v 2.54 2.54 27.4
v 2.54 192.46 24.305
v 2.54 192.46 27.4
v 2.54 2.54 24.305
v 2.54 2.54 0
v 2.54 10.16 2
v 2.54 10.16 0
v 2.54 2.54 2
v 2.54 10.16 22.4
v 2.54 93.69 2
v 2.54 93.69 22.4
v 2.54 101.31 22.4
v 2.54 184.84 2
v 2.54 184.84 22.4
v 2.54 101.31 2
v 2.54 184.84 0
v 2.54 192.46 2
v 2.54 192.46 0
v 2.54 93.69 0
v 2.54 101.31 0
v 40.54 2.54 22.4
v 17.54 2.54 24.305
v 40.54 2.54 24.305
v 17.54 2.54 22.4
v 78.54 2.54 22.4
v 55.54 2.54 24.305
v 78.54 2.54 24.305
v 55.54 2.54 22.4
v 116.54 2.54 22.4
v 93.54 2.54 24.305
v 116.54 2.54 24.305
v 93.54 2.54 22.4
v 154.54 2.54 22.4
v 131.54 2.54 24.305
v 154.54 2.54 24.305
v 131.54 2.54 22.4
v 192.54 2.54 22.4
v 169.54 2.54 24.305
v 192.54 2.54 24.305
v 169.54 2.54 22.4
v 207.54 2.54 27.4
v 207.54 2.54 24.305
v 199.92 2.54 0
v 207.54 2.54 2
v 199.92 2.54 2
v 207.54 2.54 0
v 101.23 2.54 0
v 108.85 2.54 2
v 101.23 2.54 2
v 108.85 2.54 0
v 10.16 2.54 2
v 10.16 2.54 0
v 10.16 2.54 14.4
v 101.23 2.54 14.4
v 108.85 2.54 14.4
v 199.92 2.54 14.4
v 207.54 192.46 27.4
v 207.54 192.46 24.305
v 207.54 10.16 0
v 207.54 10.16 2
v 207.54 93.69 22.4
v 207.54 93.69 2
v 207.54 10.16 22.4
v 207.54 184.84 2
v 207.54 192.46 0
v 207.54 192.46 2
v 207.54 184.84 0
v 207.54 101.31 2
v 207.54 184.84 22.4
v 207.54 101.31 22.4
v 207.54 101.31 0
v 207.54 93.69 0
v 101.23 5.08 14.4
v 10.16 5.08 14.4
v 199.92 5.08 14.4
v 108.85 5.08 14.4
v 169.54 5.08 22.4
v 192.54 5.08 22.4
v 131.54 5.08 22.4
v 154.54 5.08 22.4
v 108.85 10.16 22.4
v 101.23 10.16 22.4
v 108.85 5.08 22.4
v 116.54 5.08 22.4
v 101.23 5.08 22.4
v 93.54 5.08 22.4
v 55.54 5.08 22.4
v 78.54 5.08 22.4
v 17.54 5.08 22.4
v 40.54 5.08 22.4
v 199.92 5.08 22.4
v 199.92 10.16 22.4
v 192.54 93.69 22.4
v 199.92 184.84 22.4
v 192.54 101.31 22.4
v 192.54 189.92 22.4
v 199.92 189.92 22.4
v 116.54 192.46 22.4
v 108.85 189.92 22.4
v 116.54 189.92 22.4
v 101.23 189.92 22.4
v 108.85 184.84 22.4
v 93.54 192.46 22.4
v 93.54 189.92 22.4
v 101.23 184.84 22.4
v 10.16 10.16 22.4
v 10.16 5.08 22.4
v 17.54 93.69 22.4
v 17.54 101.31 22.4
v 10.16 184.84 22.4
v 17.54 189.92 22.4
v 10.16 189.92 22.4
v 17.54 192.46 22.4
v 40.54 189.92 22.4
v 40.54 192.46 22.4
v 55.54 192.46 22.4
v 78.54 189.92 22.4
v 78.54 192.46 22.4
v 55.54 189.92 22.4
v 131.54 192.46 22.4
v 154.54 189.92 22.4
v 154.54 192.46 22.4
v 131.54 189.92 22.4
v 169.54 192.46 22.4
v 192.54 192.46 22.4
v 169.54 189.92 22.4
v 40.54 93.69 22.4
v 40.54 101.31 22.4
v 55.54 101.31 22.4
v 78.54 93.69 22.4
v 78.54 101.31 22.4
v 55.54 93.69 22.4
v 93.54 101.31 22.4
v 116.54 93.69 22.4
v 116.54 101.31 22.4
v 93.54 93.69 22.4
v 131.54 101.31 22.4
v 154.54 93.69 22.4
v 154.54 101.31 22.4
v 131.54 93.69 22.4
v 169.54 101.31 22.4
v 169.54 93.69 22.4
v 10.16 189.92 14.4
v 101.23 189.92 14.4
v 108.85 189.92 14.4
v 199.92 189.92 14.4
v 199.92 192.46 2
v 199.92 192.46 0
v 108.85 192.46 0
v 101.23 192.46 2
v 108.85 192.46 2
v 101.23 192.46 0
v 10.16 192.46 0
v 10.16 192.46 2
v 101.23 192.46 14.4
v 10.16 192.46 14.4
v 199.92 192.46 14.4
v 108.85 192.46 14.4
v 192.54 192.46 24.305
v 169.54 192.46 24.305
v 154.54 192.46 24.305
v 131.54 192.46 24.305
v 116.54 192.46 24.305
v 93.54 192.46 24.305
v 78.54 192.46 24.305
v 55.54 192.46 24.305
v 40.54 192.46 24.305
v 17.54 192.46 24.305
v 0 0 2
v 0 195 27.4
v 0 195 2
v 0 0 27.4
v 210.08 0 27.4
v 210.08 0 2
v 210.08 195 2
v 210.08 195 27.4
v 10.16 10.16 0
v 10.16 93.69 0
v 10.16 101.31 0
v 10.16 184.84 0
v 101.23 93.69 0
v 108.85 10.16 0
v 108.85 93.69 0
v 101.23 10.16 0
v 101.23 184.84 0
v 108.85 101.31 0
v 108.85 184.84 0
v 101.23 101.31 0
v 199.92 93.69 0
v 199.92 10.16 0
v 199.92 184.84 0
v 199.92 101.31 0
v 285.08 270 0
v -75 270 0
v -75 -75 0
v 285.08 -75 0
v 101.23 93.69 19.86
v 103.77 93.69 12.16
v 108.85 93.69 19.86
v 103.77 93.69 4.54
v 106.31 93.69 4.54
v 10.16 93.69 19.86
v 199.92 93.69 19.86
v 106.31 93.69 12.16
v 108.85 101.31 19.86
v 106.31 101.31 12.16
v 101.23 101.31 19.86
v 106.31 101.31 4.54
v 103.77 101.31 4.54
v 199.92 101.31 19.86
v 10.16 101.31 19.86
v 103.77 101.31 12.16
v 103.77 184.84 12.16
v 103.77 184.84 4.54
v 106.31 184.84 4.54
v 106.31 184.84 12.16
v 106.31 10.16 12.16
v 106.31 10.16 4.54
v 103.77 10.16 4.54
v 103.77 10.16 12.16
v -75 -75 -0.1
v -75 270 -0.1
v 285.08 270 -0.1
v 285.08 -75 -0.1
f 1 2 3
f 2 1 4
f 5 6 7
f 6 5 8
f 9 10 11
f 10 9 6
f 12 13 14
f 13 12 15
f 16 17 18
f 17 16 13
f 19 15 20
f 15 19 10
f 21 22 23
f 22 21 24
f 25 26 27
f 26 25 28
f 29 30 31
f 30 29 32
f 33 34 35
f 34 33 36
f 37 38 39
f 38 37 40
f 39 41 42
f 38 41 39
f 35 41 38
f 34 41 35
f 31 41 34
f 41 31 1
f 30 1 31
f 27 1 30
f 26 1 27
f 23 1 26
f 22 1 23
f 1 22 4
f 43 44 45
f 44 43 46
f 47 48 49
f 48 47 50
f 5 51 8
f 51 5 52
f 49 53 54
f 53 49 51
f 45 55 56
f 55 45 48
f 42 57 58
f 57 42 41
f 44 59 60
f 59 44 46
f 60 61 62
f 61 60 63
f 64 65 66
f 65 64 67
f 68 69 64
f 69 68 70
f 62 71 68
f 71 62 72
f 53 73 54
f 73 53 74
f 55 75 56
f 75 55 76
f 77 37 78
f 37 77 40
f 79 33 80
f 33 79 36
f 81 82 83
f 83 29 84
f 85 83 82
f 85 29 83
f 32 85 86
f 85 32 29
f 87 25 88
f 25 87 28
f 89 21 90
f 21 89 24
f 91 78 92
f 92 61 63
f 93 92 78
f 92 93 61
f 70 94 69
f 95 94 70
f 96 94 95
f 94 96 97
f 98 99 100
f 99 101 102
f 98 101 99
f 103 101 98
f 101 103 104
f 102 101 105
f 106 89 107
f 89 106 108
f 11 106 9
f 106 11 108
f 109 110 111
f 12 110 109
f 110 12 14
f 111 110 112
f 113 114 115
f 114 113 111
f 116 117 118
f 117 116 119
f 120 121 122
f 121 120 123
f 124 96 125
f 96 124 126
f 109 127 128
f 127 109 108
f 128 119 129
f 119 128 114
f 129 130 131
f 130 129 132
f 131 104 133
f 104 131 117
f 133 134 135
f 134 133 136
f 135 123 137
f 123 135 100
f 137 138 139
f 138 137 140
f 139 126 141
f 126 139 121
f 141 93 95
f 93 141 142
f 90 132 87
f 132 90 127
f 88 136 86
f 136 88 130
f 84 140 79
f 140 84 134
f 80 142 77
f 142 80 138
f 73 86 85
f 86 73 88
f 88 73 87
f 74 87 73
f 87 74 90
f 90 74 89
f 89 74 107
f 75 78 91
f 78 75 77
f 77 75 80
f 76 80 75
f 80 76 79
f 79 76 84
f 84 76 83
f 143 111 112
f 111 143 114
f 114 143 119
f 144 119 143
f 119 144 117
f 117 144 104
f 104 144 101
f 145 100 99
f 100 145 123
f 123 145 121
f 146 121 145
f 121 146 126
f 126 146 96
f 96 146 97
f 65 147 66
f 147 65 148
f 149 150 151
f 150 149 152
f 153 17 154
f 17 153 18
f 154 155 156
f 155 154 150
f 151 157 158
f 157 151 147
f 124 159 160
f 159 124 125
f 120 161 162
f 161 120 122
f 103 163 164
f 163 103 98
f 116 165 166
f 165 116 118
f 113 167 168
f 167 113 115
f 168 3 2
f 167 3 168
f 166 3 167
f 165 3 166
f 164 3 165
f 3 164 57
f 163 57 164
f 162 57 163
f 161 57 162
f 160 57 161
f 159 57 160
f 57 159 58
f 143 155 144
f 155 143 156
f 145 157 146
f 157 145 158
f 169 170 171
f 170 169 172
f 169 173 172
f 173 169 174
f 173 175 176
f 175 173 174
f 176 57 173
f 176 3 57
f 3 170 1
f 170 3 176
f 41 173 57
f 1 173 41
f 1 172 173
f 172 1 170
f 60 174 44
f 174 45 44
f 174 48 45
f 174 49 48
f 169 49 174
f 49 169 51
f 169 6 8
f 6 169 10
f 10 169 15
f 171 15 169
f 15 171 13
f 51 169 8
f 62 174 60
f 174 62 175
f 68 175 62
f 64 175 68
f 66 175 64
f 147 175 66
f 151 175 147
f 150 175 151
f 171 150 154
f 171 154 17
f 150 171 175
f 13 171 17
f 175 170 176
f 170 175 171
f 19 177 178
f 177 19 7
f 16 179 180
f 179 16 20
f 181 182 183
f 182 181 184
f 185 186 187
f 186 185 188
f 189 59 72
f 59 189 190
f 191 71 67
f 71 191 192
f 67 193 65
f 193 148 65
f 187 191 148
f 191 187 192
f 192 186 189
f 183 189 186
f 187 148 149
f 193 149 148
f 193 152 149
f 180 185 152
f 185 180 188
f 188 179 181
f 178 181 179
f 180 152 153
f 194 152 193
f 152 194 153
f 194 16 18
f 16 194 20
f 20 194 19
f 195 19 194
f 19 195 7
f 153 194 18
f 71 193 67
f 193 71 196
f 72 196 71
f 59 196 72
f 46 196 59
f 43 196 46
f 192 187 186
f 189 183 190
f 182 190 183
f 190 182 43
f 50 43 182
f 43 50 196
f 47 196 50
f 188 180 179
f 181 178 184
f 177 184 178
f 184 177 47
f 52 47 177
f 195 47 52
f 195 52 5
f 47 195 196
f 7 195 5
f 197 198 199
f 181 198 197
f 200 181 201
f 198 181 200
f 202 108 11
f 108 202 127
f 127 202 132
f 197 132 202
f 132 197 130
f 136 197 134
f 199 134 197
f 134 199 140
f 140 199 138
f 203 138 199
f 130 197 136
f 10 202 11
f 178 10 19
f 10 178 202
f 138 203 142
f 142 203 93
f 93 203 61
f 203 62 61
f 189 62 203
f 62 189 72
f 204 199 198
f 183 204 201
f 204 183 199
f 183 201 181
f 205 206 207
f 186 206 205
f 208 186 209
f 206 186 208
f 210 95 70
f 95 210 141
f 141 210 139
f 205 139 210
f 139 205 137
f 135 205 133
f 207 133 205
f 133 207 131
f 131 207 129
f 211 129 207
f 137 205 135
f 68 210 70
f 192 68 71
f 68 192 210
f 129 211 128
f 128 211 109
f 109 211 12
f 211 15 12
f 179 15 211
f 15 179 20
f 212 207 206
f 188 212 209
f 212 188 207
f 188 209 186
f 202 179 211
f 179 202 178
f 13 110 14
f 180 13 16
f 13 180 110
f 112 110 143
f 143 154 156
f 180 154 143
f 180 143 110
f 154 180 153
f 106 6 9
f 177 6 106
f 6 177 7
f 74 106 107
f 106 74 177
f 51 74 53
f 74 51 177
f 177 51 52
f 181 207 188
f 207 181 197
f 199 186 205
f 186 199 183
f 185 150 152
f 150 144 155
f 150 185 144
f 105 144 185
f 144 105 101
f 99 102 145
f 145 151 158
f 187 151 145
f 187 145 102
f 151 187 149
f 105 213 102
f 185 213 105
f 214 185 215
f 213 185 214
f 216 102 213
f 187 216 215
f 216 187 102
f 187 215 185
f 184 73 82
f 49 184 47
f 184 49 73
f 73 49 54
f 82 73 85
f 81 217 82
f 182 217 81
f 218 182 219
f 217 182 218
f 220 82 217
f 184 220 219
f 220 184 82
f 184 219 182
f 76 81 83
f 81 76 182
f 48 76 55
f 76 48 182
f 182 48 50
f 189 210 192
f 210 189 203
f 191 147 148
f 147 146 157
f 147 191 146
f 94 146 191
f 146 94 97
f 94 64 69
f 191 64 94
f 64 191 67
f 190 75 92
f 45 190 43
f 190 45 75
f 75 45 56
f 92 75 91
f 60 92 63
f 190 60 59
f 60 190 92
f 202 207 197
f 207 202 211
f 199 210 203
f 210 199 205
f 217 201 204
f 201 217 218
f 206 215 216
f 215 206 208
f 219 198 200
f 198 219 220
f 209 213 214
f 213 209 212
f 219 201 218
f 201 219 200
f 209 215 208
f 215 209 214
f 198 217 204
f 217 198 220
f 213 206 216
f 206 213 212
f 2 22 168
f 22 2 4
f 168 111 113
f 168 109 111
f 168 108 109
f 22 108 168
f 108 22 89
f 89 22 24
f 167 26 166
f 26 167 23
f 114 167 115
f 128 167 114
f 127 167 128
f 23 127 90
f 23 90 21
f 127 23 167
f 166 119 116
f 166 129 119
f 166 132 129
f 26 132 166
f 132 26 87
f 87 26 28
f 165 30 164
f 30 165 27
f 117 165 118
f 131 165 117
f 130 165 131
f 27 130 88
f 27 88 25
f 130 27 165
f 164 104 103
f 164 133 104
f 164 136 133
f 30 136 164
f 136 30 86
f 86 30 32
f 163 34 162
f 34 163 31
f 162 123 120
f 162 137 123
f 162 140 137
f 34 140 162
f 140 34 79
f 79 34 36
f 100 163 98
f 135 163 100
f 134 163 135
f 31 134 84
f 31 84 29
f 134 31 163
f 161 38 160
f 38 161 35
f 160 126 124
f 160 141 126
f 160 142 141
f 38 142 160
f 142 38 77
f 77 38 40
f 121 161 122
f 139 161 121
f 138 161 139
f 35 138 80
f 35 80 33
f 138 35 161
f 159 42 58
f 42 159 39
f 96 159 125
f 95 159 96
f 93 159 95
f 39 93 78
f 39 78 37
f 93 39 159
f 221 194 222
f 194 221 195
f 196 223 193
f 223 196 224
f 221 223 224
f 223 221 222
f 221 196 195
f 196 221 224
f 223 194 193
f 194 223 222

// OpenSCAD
// file: common/board.scad
// board.scad

BOARD_DEFAULT_LENGTH = 600;
BOARD_DEFAULT_WIDTH = 120;
BOARD_DEFAULT_THICKNESS = 120;

function board_get_default_size()
    = [BOARD_DEFAULT_LENGTH, BOARD_DEFAULT_WIDTH, BOARD_DEFAULT_THICKNESS];

module board(size = board_get_default_size(), center = false)
{
    // size[0] is always with the grain
    // size[1] is against the grain
    // size[2] is the board thickness
    cube(size = size, center = center);
}
// main file
// bed_frame.scad
// units: centimeter
// TODO
// - fix multi-line constant style, operator in front
// - joints
// - make parts/files for each module

use <common/board.scad>

// king size mattress is 80 x 76 in
// rounding up a little
MATTRESS_LENGTH = 205;
MATTRESS_WIDTH = 195;

BASE_DEPTH_OFFSET = 5;
GROUND_CLEARANCE_OFFSET = 2;
CROSS_BOARD_LENGTH = 195;
CROSS_SUPPORT_BEAM_OFFSET = GROUND_CLEARANCE_OFFSET + 2.54;

POST_BOARD_WIDTH = 7.62;
POST_BOARD_THICKNESS = 7.62;

END_BOARD_LENGTH = CROSS_BOARD_LENGTH;
END_BOARD_WIDTH = 25.4;
END_BOARD_THICKNESS = 2.54;

SIDE_BOARD_LENGTH =
        MATTRESS_LENGTH
        + (2 * END_BOARD_THICKNESS);
SIDE_BOARD_WIDTH = 25.4;
SIDE_BOARD_THICKNESS = END_BOARD_THICKNESS;

SIDE_SUPPORT_BOARD_LENGTH =
        SIDE_BOARD_LENGTH
        - (2 * END_BOARD_THICKNESS);
SIDE_SUPPORT_BOARD_WIDTH = 8;
SIDE_SUPPORT_BOARD_THICKNESS = 2.54;

SUPPORT_POST_LENGTH =
        SIDE_BOARD_WIDTH
        - BASE_DEPTH_OFFSET
        + GROUND_CLEARANCE_OFFSET;
SUPPORT_POST_WIDTH = POST_BOARD_WIDTH;
SUPPORT_POST_THICKNESS = POST_BOARD_THICKNESS;

SUPPORT_BEAM_LENGTH =
        (SIDE_BOARD_LENGTH/2)
        - (SUPPORT_POST_THICKNESS/2)
        - END_BOARD_THICKNESS;
SUPPORT_BEAM_WIDTH = SUPPORT_POST_WIDTH;
SUPPORT_BEAM_THICKNESS = 2.54;

CROSS_SUPPORT_BEAM_LENGTH =
        (CROSS_BOARD_LENGTH/2)
        - SUPPORT_POST_WIDTH
        - (SUPPORT_POST_WIDTH/2)
        // tenon
        + SUPPORT_POST_WIDTH;
CROSS_SUPPORT_BEAM_WIDTH = 7.62;
CROSS_SUPPORT_BEAM_THICKNESS = 2.54;

BED_SUPPORT_BOARD_COL_CNT = 6;
BED_SUPPORT_BOARD_SEP_DIST = 23;
BED_SUPPORT_BOARD_LENGTH =
        (CROSS_BOARD_LENGTH/2)
        - SIDE_BOARD_THICKNESS;
BED_SUPPORT_BOARD_WIDTH = 15;
BED_SUPPORT_BOARD_THICKNESS = 1.905;

TOTAL_WIDTH = CROSS_BOARD_LENGTH;
        
TOTAL_LENGTH = SIDE_BOARD_LENGTH;

module side_board()
{
    board_size = [
            SIDE_BOARD_LENGTH,
            SIDE_BOARD_WIDTH,
            SIDE_BOARD_THICKNESS];

    translate([0, SIDE_BOARD_THICKNESS, 0])
        rotate([90, 0, 0])
            board(board_size);
}

module side_support_board()
{
    board_size = [
            SIDE_SUPPORT_BOARD_LENGTH,
            SIDE_SUPPORT_BOARD_WIDTH,
            SIDE_SUPPORT_BOARD_THICKNESS];

    translate([0, SIDE_SUPPORT_BOARD_THICKNESS, 0])
        rotate([90, 0, 0])
            board(board_size);
}

module side_supports()
{
    offset_base_depth =
            SIDE_BOARD_WIDTH
            + GROUND_CLEARANCE_OFFSET
            - BASE_DEPTH_OFFSET
            - SIDE_SUPPORT_BOARD_WIDTH;
    
    support_board_offset_a = [
            END_BOARD_THICKNESS,
            SIDE_BOARD_THICKNESS,
            offset_base_depth];
    
    support_board_offset_b = [
            END_BOARD_THICKNESS,
            TOTAL_WIDTH
                    - SIDE_BOARD_THICKNESS
                    - SIDE_SUPPORT_BOARD_THICKNESS,
            offset_base_depth];

    translate(support_board_offset_a)
        side_support_board();
        
    translate(support_board_offset_b)
        side_support_board();
}

module sides()
{    
    offset_a = [
            0,
            0,
            GROUND_CLEARANCE_OFFSET];
    
    offset_b = [
            0,
            TOTAL_WIDTH - SIDE_BOARD_THICKNESS,
            GROUND_CLEARANCE_OFFSET];

    translate(offset_a)
        side_board();
        
    translate(offset_b)
        side_board();
}

module base_support_post_board()
{
    support_board_size = [
            SUPPORT_POST_LENGTH,
            SUPPORT_POST_WIDTH,
            SUPPORT_POST_THICKNESS];
    
    translate([support_board_size[2], 0, 0])
        rotate([0, -90, 0])
            board(support_board_size);
}

module base_support_posts()
{
    center_x = TOTAL_LENGTH/2;
    center_y = TOTAL_WIDTH/2;

    offset_a = [
            END_BOARD_THICKNESS,
            center_y - (SUPPORT_POST_WIDTH/2),
            0];
    
    offset_ar = [
            END_BOARD_THICKNESS,
            TOTAL_WIDTH - SUPPORT_POST_WIDTH - SIDE_BOARD_THICKNESS,
            0];
    
    offset_al = [
            END_BOARD_THICKNESS,
            SIDE_BOARD_THICKNESS,
            0];
    
    offset_b = [
            center_x  - (SUPPORT_POST_THICKNESS/2),
            center_y - (SUPPORT_POST_WIDTH/2),
            0];
    
    offset_br = [
            center_x  - (SUPPORT_POST_THICKNESS/2),
            TOTAL_WIDTH - SUPPORT_POST_WIDTH - SIDE_BOARD_THICKNESS,
            0];
    
    offset_bl = [
            center_x  - (SUPPORT_POST_THICKNESS/2),
            SIDE_BOARD_THICKNESS,
            0];
    
    offset_c = [
            TOTAL_LENGTH
                    - SUPPORT_POST_THICKNESS
                    - END_BOARD_THICKNESS,
            center_y - (SUPPORT_POST_WIDTH/2),
            0];
            
    offset_cr = [
            TOTAL_LENGTH
                    - SUPPORT_POST_THICKNESS
                    - END_BOARD_THICKNESS,
            TOTAL_WIDTH - SUPPORT_POST_WIDTH - SIDE_BOARD_THICKNESS,
            0];
            
    offset_cl = [
            TOTAL_LENGTH
                    - SUPPORT_POST_THICKNESS
                    - END_BOARD_THICKNESS,
            END_BOARD_THICKNESS,
            0];

    translate(offset_a)
        base_support_post_board();
        
    translate(offset_ar)
        base_support_post_board();
        
    translate(offset_al)
        base_support_post_board();
    
    translate(offset_b)
        base_support_post_board();
        
    translate(offset_br)
        base_support_post_board();
        
    translate(offset_bl)
        base_support_post_board();
        
    translate(offset_c)
        base_support_post_board();
        
    translate(offset_cr)
        base_support_post_board();
        
    translate(offset_cl)
        base_support_post_board();
}

module base_support_beams()
{
    board_size = [
            SUPPORT_BEAM_LENGTH,
            SUPPORT_BEAM_WIDTH,
            SUPPORT_BEAM_THICKNESS];
    
    center_x = TOTAL_LENGTH/2;
    center_y = TOTAL_WIDTH/2;

    offset_a = [
            (SUPPORT_POST_THICKNESS/2)
                    + END_BOARD_THICKNESS,
            center_y - (SUPPORT_BEAM_WIDTH/2),
            SUPPORT_POST_LENGTH - SUPPORT_BEAM_THICKNESS];
    
    offset_b = [
            center_x,
            center_y - (SUPPORT_BEAM_WIDTH/2),
            SUPPORT_POST_LENGTH - SUPPORT_BEAM_THICKNESS];
    
    translate(offset_a)
        board(board_size);
    
    translate(offset_b)
        board(board_size);
}

module base_cross_support_beam()
{
    board_size = [
            CROSS_SUPPORT_BEAM_LENGTH,
            CROSS_SUPPORT_BEAM_WIDTH,
            CROSS_SUPPORT_BEAM_THICKNESS];
    
    rotate([0, 0, 90])
        rotate([90, 0, 0])
            board(board_size);
}

module base_cross_supports()
{
    center_x = TOTAL_LENGTH/2;
    center_y = TOTAL_WIDTH/2;

    offset_a = [
            center_x - (CROSS_SUPPORT_BEAM_THICKNESS/2),
            SIDE_BOARD_THICKNESS + (SUPPORT_POST_WIDTH/2),
            CROSS_SUPPORT_BEAM_OFFSET];
    
    offset_b = [
            center_x - (CROSS_SUPPORT_BEAM_THICKNESS/2),
            center_y,
            CROSS_SUPPORT_BEAM_OFFSET];
    
    translate(offset_a)
        base_cross_support_beam();
    
    translate(offset_b)
        base_cross_support_beam();
}

module end_boards()
{
    board_size = [
            END_BOARD_LENGTH,
            END_BOARD_WIDTH,
            END_BOARD_THICKNESS];
    
    offset_a = [
            0,
            0,
            GROUND_CLEARANCE_OFFSET];
    
    offset_b = [
            SIDE_BOARD_LENGTH - END_BOARD_THICKNESS,
            0,
            GROUND_CLEARANCE_OFFSET];
    
    translate(offset_a)
        rotate([0, 0, 90])
            rotate([90, 0, 0])
                board(board_size);
    
    translate(offset_b)
        rotate([0, 0, 90])
            rotate([90, 0, 0])
                board(board_size);
}

module bed_support_board()
{
    board_size = [
            BED_SUPPORT_BOARD_LENGTH,
            BED_SUPPORT_BOARD_WIDTH,
            BED_SUPPORT_BOARD_THICKNESS];
    
    offset_m = [
            BED_SUPPORT_BOARD_WIDTH,
            SIDE_BOARD_THICKNESS,
            SUPPORT_POST_LENGTH];
    
    translate(offset_m)
        rotate([0, 0, 90])
            board(board_size);
}

module bed_support_left_column_boards()
{
    for(b = [0 : BED_SUPPORT_BOARD_COL_CNT - 1])
    {
        xoffset = 
                END_BOARD_THICKNESS
                + (b *
                (BED_SUPPORT_BOARD_WIDTH
                        + BED_SUPPORT_BOARD_SEP_DIST));
        
        translate([xoffset, 0, 0])
            bed_support_board();
    }
}

module bed_support_right_column_boards()
{
    translate([0, TOTAL_WIDTH/2 - SIDE_BOARD_THICKNESS, 0])
        bed_support_left_column_boards();
}

module bed_frame()
{
    color("Sienna")
        side_supports();
    
    color("SaddleBrown")
        sides();
    
    color("Peru")
        base_support_posts();
    
    color("Sienna")
        base_support_beams();
    
    color("Sienna")
        base_cross_supports();
    
    color("SaddleBrown")
        end_boards();

    color("Chocolate")
        bed_support_left_column_boards();
        
    color("Chocolate")
        bed_support_right_column_boards();
}

module mattress()
{
    mattress_size = [
            MATTRESS_LENGTH,
            MATTRESS_WIDTH,
            24];

    offset_m = [
            END_BOARD_THICKNESS,
            SIDE_BOARD_THICKNESS,
            SUPPORT_POST_LENGTH
                    + BED_SUPPORT_BOARD_THICKNESS
                    + 1];

    translate(offset_m)
        cube(mattress_size);
}

length = 150;

color("Gray")
    translate([-length/2, -length/2, -0.1])
        cube([TOTAL_LENGTH + length, TOTAL_WIDTH + length, 0.1]);

bed_frame();

%mattress();
